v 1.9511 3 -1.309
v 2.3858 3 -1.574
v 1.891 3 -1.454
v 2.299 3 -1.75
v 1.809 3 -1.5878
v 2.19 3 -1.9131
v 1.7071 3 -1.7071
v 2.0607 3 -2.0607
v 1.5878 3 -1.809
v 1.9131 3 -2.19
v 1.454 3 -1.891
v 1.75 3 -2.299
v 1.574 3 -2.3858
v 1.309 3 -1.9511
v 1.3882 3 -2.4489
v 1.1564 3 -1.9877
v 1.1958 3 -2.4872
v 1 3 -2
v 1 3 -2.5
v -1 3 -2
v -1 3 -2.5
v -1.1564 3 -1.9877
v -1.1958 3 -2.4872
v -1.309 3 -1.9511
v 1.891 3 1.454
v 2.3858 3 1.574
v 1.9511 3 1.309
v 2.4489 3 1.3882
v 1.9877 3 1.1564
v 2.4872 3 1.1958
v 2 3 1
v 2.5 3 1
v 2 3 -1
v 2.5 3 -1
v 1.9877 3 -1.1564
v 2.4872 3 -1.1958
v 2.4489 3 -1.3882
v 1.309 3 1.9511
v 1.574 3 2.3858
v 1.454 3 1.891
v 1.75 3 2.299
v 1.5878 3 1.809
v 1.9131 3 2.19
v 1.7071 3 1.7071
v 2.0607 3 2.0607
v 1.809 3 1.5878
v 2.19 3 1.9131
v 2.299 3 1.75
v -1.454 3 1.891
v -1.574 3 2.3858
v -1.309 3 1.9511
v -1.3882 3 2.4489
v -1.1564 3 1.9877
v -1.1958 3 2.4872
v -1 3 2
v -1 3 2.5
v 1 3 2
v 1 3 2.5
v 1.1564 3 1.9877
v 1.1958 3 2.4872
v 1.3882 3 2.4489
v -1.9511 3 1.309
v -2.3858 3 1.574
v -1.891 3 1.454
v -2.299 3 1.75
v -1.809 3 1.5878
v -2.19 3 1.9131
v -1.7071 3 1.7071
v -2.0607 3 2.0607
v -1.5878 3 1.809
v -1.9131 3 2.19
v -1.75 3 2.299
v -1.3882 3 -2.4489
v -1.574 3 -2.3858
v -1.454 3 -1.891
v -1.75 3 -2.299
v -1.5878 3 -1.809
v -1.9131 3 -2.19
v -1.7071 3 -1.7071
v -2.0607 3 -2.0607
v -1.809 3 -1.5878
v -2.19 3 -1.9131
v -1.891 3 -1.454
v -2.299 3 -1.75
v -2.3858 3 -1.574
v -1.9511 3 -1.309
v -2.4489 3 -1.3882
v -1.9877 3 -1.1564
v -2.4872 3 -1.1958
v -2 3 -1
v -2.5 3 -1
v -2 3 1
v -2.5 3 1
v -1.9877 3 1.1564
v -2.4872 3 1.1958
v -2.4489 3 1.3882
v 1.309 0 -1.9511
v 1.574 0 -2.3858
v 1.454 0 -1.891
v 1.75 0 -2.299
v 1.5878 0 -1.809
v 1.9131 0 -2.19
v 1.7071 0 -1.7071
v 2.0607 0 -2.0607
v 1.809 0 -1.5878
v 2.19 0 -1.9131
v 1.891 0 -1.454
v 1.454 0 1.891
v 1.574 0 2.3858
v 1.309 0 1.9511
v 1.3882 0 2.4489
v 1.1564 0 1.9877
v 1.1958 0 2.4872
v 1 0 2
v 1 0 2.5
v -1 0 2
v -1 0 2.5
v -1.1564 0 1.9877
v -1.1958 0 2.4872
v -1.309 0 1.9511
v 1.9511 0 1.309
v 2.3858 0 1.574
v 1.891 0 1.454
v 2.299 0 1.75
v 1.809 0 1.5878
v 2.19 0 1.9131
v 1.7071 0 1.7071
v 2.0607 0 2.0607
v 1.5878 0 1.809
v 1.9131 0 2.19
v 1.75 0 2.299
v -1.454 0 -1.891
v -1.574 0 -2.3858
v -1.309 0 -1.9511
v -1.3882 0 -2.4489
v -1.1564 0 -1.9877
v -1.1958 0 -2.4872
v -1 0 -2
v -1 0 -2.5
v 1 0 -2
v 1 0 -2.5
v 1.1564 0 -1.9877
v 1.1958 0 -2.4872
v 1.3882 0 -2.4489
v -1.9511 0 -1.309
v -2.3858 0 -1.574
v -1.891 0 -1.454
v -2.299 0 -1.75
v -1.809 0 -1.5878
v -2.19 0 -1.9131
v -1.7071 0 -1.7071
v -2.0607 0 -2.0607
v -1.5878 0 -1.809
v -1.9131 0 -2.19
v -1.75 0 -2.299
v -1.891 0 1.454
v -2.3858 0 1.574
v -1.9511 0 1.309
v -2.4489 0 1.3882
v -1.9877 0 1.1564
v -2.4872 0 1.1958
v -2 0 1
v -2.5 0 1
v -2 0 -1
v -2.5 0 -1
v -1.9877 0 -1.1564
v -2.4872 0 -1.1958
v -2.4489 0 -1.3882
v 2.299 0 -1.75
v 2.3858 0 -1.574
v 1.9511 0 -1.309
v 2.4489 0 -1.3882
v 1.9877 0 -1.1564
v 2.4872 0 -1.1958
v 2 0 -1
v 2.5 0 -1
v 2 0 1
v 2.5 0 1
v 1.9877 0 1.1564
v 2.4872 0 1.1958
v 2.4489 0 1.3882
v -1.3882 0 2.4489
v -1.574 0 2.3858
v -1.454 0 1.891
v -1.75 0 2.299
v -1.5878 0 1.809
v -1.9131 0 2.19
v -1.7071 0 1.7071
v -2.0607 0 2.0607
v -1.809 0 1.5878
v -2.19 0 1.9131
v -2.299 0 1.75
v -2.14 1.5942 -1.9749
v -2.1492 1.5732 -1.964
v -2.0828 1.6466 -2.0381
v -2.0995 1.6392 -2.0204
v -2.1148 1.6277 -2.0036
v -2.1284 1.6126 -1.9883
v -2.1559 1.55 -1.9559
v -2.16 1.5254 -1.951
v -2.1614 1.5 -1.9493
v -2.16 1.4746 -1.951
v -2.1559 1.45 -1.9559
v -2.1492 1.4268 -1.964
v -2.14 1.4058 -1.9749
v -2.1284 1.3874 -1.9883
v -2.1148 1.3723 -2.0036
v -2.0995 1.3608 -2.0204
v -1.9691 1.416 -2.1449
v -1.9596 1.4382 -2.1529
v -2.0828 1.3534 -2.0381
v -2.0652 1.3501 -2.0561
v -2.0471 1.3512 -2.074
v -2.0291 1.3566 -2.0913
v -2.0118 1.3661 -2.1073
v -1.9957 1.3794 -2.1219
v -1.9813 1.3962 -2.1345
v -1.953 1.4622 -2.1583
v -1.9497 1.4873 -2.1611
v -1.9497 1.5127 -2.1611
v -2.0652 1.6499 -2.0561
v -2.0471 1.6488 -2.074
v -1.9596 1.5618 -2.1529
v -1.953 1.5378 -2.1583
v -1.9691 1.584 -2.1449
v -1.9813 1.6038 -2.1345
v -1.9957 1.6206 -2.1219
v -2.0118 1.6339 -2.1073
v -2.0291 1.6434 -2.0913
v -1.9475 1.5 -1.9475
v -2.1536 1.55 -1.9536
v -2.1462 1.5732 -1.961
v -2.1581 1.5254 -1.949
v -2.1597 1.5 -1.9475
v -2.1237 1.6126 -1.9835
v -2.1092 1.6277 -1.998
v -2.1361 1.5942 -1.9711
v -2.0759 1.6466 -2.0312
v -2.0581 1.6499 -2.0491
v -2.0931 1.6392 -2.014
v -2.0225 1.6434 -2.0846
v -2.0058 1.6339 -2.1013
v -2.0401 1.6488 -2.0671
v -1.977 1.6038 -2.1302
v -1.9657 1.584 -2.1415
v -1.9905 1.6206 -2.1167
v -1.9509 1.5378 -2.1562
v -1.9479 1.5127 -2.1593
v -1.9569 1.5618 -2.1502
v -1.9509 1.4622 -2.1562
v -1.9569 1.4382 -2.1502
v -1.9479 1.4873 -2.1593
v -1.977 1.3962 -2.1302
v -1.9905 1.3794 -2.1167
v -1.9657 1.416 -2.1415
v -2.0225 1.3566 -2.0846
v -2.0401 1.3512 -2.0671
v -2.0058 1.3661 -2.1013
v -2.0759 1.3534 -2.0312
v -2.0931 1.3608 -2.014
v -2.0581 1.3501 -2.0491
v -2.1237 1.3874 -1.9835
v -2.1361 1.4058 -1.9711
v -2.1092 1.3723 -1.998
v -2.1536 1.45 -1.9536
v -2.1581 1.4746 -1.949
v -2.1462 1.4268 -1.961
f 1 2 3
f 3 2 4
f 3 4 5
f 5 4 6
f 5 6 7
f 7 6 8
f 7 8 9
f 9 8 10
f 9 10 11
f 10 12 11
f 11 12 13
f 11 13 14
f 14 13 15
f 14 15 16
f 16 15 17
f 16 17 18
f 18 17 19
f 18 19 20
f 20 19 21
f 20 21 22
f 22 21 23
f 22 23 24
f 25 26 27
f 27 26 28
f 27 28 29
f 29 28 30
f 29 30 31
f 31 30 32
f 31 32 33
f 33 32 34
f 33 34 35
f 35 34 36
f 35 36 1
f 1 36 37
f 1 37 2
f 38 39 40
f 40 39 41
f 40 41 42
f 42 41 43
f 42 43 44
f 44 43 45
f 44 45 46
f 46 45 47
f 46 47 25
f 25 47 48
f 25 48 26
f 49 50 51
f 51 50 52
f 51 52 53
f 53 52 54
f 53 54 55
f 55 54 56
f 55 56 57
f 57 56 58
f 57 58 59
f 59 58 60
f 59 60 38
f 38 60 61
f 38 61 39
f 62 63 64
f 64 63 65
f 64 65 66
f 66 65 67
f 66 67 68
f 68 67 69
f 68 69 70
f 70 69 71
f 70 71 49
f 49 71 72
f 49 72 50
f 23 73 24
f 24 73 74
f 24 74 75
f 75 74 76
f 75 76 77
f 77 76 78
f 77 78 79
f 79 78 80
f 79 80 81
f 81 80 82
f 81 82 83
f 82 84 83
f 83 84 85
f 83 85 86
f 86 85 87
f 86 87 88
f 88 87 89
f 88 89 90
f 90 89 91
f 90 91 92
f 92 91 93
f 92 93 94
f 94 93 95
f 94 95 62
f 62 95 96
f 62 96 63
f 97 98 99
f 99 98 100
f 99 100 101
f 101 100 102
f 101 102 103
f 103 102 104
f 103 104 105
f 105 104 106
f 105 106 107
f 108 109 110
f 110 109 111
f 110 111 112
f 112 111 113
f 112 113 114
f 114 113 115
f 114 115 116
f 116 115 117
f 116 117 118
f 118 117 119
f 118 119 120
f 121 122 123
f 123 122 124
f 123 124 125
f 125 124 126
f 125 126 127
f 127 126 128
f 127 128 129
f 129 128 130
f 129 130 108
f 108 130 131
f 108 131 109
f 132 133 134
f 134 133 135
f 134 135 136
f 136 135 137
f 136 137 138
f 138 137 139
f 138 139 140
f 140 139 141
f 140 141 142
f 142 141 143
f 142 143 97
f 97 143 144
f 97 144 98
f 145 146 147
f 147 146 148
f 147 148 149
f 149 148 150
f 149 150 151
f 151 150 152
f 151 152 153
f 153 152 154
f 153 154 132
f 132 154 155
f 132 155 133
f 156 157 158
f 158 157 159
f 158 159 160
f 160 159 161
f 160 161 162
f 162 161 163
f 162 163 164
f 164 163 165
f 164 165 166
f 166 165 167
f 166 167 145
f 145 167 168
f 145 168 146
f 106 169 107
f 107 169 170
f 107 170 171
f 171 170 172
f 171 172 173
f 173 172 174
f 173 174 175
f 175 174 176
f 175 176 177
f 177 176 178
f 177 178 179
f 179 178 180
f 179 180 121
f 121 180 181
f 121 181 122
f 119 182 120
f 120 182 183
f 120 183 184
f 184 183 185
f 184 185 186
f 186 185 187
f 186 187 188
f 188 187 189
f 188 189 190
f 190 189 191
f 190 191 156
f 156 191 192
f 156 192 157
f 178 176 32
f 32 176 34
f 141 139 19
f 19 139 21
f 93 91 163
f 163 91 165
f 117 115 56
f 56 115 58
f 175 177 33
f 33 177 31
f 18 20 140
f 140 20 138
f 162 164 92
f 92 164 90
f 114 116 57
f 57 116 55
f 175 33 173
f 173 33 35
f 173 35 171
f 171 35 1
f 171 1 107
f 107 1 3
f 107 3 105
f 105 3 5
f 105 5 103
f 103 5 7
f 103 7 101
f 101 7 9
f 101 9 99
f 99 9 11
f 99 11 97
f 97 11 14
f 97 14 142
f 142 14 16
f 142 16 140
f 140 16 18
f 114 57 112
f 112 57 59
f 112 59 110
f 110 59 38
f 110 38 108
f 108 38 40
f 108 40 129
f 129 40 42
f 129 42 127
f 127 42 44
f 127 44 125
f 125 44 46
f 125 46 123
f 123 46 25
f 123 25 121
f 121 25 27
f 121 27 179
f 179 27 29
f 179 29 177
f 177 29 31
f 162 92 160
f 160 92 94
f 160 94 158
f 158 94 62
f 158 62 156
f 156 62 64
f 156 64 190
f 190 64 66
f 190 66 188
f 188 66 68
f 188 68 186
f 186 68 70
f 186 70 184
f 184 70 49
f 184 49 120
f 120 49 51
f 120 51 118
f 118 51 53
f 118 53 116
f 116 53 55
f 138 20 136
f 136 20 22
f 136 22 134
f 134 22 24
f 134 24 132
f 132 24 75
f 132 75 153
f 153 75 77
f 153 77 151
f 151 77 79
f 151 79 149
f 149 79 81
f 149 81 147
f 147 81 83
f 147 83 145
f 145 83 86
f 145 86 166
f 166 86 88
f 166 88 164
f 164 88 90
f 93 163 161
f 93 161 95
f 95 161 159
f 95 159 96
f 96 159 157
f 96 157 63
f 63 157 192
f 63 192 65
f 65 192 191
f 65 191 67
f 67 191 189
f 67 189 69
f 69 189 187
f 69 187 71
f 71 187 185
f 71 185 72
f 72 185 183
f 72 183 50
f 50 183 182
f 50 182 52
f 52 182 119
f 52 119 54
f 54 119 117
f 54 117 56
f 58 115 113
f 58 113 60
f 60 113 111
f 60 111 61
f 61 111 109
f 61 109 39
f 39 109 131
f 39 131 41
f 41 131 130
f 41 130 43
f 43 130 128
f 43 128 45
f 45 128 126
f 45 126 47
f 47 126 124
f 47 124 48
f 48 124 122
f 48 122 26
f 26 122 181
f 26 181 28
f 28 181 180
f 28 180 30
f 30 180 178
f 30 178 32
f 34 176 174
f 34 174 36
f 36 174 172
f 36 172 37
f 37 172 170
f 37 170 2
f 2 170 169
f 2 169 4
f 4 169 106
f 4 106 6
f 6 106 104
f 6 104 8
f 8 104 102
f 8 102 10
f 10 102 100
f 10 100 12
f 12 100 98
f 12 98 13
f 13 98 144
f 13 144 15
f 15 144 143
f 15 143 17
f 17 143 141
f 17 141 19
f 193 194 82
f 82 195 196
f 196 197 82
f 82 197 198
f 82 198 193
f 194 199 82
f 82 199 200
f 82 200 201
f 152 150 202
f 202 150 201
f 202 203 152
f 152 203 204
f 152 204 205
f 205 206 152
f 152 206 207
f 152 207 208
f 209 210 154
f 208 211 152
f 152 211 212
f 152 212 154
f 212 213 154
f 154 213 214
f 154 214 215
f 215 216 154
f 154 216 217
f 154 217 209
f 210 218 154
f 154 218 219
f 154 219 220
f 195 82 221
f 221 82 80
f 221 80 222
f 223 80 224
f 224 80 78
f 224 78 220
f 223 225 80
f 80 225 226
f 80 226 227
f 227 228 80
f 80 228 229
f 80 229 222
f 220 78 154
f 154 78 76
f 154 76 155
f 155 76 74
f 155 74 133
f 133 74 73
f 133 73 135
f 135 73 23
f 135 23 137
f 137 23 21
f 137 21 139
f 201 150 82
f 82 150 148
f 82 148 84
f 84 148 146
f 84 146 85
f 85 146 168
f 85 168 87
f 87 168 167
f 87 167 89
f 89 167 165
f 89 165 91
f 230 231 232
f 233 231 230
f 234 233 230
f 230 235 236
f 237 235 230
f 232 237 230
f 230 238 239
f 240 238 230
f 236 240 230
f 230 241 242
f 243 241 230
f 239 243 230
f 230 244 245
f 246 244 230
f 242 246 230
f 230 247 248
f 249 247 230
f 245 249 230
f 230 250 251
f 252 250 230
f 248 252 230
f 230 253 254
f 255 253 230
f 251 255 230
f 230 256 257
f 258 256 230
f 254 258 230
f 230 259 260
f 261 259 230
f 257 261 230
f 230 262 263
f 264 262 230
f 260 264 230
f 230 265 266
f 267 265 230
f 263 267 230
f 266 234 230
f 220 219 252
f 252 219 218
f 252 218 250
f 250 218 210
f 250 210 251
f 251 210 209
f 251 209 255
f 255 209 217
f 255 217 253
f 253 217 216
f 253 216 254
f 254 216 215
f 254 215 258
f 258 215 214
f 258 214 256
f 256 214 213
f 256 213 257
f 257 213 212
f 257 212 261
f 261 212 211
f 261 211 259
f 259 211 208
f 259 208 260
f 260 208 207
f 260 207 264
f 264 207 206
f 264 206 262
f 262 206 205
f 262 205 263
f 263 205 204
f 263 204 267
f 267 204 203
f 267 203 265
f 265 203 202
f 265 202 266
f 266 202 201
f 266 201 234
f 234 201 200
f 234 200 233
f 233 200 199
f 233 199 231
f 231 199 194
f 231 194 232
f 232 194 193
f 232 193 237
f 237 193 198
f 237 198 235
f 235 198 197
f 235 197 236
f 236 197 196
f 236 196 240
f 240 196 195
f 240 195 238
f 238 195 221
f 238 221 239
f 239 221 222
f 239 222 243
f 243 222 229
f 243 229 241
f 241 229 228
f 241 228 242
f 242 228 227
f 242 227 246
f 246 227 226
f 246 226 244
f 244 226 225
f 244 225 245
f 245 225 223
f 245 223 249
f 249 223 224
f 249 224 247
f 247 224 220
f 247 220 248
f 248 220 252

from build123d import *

# Parameters (mm, degrees)
SKIZZE1_W                            = 5
SKIZZE1_H                            = 5
SKIZZE1_W_2                          = 4
SKIZZE1_H_2                          = 4
AUFSATZ_LINEAR_AUSTRAGEN1_DEPTH      = 3
VERRUNDUNG1_R                        = 1
VERRUNDUNG2_R                        = 1.5
F_0_3_0_3_DURCHMESSER_BOHRUNG3_D     = 0.3
F_0_3_0_3_DURCHMESSER_BOHRUNG3_DEPTH = 0.01
F_0_3_0_3_DURCHMESSER_BOHRUNG3_TIP   = 0.15


with BuildPart() as part:
    # Skizze1 → Aufsatz-Linear austragen1 (new body)
    with BuildSketch(Plane(origin=(0, 0, 0), x_dir=(1, 0, 0), z_dir=(0, 1, 0))):
        Rectangle(SKIZZE1_W, SKIZZE1_H)
        Rectangle(SKIZZE1_W_2, SKIZZE1_H_2, mode=Mode.SUBTRACT)
    extrude(amount=AUFSATZ_LINEAR_AUSTRAGEN1_DEPTH)

    # Verrundung1
    verrundung1_edges = [part.edges().sort_by_distance(p)[0] for p in [
        (2, 1.5, 2),
        (2, 1.5, -2),
        (-2, 1.5, -2),
        (-2, 1.5, 2),
    ]]
    fillet(verrundung1_edges, radius=VERRUNDUNG1_R)

    # Verrundung2
    verrundung2_edges = [part.edges().sort_by_distance(p)[0] for p in [
        (2.5, 1.5, 2.5),
        (-2.5, 1.5, 2.5),
        (-2.5, 1.5, -2.5),
        (2.5, 1.5, -2.5),
    ]]
    fillet(verrundung2_edges, radius=VERRUNDUNG2_R)

    # Ø0.3 (0.3) Durchmesser Bohrung3
    with Locations(Plane(origin=(-2.060660172, 0, -2.060660172), x_dir=(-0.707106781, 0, 0.707106781), z_dir=(-0.707106781, 0, -0.707106781))):
        with Locations((0, 1.5)):
            Hole(F_0_3_0_3_DURCHMESSER_BOHRUNG3_D / 2, depth=F_0_3_0_3_DURCHMESSER_BOHRUNG3_DEPTH)
            with Locations((0, 0, -(F_0_3_0_3_DURCHMESSER_BOHRUNG3_DEPTH + F_0_3_0_3_DURCHMESSER_BOHRUNG3_TIP / 2))):  # 90° drill point
                Cone(0, F_0_3_0_3_DURCHMESSER_BOHRUNG3_D / 2, F_0_3_0_3_DURCHMESSER_BOHRUNG3_TIP, mode=Mode.SUBTRACT)


solid = part.part
